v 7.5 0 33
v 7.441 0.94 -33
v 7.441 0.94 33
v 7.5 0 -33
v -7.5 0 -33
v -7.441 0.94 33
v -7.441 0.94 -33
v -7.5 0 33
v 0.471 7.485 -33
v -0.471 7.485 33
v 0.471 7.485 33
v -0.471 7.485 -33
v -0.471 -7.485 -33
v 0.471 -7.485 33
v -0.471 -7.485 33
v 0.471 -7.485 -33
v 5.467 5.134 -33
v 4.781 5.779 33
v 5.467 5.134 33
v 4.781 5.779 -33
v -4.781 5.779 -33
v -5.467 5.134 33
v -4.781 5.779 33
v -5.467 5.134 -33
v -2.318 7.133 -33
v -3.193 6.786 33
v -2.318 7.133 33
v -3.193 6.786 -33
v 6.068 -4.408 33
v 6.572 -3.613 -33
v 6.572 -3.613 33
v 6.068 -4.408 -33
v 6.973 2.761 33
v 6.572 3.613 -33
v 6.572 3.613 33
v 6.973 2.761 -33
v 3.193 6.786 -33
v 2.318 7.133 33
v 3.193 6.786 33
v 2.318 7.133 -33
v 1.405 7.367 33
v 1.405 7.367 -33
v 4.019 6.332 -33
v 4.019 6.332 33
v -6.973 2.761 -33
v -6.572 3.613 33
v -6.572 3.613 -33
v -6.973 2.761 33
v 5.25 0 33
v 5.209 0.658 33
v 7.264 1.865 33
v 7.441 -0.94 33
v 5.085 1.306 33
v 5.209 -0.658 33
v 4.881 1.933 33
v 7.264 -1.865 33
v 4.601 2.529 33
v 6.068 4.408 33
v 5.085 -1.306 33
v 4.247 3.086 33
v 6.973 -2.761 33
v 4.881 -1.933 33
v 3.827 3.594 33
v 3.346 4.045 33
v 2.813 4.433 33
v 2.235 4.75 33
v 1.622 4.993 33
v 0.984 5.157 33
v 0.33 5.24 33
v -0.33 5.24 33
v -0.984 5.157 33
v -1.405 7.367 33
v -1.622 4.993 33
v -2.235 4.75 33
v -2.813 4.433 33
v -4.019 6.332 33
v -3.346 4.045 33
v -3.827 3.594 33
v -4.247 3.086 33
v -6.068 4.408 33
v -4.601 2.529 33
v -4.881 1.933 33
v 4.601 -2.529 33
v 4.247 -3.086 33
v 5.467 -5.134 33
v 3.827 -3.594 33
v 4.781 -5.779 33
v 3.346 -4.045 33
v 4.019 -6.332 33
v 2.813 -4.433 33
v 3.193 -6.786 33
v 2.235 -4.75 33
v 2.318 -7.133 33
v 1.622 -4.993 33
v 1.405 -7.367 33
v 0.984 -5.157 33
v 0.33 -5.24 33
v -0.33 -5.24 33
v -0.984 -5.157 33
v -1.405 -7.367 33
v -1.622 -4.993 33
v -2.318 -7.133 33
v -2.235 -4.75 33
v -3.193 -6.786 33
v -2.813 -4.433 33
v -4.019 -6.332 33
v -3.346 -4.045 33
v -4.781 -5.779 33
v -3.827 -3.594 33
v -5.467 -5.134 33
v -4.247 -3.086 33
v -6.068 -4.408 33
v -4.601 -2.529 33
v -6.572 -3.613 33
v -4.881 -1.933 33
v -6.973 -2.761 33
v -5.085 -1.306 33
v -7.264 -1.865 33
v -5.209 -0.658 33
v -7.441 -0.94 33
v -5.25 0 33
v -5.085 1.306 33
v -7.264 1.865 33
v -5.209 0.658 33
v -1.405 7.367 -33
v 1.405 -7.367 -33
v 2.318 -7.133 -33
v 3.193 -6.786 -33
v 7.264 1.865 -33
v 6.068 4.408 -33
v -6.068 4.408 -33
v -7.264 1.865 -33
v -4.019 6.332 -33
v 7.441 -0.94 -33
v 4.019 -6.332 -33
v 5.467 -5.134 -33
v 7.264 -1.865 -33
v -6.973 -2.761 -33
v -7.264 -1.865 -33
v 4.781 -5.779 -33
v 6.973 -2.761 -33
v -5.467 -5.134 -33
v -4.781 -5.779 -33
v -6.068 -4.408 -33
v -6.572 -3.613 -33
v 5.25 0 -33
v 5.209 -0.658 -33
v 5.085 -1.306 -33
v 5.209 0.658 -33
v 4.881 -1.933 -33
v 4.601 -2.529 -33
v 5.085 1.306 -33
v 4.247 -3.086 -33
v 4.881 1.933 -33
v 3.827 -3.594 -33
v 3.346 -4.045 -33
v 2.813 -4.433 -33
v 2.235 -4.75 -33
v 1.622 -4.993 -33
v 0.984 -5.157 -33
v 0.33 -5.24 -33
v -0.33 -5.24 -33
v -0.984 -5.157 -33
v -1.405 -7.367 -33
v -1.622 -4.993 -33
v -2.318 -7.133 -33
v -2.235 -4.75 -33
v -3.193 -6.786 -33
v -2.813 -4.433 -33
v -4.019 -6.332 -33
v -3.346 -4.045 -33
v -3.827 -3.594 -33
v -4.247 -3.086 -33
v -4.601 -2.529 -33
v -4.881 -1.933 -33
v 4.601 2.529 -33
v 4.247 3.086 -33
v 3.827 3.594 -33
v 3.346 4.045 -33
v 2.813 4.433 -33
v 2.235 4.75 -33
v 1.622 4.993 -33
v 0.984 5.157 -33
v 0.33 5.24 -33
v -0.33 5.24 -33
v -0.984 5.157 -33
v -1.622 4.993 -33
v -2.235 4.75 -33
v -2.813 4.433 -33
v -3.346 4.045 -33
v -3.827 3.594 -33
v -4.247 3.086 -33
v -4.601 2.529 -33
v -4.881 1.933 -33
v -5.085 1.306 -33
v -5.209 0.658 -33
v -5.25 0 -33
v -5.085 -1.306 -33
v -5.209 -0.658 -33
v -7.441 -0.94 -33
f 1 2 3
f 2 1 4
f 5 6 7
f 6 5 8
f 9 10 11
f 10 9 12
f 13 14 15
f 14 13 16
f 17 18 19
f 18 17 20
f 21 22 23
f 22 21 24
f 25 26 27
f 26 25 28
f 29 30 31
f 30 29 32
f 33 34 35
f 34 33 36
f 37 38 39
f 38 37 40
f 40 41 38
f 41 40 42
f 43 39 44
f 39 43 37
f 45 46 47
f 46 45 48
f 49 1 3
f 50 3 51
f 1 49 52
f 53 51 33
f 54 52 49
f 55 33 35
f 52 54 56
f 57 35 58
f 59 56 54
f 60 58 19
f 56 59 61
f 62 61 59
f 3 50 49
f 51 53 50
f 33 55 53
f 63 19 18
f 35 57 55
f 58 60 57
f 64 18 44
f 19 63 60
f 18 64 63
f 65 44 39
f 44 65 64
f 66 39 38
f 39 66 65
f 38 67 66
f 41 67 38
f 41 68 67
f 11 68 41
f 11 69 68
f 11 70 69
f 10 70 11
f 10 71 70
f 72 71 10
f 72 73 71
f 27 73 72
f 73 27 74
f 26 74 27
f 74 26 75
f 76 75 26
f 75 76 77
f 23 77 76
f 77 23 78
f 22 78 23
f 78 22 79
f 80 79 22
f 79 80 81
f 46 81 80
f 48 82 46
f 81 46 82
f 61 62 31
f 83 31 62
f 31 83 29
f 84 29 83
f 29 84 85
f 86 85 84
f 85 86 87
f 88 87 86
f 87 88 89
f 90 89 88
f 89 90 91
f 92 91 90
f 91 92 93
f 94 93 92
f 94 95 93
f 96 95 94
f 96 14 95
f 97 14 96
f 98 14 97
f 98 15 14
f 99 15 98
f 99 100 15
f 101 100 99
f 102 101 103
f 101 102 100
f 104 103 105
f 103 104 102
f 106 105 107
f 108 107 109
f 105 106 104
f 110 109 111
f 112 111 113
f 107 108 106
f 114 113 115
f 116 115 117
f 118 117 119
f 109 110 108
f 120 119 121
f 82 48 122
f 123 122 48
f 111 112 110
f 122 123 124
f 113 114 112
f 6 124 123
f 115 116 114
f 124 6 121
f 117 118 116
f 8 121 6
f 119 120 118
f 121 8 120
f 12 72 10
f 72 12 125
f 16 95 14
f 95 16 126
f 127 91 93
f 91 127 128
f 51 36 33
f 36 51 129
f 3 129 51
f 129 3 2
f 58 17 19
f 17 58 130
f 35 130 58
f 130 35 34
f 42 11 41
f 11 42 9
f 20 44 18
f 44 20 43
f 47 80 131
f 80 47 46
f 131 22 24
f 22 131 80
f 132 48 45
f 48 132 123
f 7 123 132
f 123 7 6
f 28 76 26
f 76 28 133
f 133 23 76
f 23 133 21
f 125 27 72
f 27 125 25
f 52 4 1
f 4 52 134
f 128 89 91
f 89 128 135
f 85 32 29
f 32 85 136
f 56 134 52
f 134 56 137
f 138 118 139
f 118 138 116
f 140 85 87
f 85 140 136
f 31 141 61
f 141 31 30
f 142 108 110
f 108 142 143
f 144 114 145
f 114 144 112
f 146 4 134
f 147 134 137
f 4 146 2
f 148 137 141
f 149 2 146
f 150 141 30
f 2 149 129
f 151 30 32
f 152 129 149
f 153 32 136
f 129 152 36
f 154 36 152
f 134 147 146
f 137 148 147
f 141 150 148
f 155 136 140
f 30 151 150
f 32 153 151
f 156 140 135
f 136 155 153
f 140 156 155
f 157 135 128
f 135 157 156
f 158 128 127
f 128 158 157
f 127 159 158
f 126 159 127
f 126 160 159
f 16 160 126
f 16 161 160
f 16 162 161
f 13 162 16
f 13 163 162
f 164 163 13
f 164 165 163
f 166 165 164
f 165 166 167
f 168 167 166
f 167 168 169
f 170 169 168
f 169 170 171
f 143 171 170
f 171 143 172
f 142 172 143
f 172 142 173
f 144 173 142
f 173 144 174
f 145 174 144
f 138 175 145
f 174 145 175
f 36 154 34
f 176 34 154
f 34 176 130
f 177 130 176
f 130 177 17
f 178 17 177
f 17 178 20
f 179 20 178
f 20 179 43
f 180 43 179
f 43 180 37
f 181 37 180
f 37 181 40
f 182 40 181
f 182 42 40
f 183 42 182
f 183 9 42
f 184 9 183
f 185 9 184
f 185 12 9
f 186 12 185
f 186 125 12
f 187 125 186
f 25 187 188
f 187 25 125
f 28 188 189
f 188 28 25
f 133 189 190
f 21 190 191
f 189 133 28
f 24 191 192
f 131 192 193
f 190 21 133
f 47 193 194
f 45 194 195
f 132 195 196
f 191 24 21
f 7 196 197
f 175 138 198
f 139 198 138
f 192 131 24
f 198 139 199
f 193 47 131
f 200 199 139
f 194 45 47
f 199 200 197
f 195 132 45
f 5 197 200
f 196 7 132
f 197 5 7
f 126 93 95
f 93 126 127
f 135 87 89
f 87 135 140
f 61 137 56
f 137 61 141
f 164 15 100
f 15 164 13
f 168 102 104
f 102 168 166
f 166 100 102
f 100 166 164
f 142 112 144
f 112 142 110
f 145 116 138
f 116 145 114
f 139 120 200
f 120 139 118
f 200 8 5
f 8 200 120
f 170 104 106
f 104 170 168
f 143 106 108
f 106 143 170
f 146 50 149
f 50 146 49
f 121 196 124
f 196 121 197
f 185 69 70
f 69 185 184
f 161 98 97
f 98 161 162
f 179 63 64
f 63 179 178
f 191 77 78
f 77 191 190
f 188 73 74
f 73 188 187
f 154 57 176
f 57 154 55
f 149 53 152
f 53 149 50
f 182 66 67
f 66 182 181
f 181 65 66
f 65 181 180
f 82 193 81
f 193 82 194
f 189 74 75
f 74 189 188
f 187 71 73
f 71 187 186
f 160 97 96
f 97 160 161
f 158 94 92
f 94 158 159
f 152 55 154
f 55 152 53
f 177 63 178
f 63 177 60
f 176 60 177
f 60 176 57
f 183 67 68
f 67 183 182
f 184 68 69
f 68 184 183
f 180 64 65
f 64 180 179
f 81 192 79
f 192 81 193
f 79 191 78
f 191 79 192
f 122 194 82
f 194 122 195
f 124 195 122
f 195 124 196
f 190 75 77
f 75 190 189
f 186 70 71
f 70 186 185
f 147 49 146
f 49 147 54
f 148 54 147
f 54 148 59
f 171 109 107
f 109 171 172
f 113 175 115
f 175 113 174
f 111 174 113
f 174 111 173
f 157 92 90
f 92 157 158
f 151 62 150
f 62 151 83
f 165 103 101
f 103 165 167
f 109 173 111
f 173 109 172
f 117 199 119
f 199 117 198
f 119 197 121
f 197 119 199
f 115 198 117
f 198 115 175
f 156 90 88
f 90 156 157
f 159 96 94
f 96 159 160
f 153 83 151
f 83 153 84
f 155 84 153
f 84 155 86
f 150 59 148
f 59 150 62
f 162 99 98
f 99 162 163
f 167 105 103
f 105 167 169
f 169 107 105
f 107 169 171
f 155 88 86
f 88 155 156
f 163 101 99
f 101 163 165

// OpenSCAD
$fn = 50;


difference() {
	union() {
		translate(v = [0, 0, -33.0000000000]) {
			cylinder(h = 66, r = 7.5000000000);
		}
	}
	union() {
		translate(v = [0, 0, -100.0000000000]) {
			cylinder(h = 200, r = 5.2500000000);
		}
	}
}
